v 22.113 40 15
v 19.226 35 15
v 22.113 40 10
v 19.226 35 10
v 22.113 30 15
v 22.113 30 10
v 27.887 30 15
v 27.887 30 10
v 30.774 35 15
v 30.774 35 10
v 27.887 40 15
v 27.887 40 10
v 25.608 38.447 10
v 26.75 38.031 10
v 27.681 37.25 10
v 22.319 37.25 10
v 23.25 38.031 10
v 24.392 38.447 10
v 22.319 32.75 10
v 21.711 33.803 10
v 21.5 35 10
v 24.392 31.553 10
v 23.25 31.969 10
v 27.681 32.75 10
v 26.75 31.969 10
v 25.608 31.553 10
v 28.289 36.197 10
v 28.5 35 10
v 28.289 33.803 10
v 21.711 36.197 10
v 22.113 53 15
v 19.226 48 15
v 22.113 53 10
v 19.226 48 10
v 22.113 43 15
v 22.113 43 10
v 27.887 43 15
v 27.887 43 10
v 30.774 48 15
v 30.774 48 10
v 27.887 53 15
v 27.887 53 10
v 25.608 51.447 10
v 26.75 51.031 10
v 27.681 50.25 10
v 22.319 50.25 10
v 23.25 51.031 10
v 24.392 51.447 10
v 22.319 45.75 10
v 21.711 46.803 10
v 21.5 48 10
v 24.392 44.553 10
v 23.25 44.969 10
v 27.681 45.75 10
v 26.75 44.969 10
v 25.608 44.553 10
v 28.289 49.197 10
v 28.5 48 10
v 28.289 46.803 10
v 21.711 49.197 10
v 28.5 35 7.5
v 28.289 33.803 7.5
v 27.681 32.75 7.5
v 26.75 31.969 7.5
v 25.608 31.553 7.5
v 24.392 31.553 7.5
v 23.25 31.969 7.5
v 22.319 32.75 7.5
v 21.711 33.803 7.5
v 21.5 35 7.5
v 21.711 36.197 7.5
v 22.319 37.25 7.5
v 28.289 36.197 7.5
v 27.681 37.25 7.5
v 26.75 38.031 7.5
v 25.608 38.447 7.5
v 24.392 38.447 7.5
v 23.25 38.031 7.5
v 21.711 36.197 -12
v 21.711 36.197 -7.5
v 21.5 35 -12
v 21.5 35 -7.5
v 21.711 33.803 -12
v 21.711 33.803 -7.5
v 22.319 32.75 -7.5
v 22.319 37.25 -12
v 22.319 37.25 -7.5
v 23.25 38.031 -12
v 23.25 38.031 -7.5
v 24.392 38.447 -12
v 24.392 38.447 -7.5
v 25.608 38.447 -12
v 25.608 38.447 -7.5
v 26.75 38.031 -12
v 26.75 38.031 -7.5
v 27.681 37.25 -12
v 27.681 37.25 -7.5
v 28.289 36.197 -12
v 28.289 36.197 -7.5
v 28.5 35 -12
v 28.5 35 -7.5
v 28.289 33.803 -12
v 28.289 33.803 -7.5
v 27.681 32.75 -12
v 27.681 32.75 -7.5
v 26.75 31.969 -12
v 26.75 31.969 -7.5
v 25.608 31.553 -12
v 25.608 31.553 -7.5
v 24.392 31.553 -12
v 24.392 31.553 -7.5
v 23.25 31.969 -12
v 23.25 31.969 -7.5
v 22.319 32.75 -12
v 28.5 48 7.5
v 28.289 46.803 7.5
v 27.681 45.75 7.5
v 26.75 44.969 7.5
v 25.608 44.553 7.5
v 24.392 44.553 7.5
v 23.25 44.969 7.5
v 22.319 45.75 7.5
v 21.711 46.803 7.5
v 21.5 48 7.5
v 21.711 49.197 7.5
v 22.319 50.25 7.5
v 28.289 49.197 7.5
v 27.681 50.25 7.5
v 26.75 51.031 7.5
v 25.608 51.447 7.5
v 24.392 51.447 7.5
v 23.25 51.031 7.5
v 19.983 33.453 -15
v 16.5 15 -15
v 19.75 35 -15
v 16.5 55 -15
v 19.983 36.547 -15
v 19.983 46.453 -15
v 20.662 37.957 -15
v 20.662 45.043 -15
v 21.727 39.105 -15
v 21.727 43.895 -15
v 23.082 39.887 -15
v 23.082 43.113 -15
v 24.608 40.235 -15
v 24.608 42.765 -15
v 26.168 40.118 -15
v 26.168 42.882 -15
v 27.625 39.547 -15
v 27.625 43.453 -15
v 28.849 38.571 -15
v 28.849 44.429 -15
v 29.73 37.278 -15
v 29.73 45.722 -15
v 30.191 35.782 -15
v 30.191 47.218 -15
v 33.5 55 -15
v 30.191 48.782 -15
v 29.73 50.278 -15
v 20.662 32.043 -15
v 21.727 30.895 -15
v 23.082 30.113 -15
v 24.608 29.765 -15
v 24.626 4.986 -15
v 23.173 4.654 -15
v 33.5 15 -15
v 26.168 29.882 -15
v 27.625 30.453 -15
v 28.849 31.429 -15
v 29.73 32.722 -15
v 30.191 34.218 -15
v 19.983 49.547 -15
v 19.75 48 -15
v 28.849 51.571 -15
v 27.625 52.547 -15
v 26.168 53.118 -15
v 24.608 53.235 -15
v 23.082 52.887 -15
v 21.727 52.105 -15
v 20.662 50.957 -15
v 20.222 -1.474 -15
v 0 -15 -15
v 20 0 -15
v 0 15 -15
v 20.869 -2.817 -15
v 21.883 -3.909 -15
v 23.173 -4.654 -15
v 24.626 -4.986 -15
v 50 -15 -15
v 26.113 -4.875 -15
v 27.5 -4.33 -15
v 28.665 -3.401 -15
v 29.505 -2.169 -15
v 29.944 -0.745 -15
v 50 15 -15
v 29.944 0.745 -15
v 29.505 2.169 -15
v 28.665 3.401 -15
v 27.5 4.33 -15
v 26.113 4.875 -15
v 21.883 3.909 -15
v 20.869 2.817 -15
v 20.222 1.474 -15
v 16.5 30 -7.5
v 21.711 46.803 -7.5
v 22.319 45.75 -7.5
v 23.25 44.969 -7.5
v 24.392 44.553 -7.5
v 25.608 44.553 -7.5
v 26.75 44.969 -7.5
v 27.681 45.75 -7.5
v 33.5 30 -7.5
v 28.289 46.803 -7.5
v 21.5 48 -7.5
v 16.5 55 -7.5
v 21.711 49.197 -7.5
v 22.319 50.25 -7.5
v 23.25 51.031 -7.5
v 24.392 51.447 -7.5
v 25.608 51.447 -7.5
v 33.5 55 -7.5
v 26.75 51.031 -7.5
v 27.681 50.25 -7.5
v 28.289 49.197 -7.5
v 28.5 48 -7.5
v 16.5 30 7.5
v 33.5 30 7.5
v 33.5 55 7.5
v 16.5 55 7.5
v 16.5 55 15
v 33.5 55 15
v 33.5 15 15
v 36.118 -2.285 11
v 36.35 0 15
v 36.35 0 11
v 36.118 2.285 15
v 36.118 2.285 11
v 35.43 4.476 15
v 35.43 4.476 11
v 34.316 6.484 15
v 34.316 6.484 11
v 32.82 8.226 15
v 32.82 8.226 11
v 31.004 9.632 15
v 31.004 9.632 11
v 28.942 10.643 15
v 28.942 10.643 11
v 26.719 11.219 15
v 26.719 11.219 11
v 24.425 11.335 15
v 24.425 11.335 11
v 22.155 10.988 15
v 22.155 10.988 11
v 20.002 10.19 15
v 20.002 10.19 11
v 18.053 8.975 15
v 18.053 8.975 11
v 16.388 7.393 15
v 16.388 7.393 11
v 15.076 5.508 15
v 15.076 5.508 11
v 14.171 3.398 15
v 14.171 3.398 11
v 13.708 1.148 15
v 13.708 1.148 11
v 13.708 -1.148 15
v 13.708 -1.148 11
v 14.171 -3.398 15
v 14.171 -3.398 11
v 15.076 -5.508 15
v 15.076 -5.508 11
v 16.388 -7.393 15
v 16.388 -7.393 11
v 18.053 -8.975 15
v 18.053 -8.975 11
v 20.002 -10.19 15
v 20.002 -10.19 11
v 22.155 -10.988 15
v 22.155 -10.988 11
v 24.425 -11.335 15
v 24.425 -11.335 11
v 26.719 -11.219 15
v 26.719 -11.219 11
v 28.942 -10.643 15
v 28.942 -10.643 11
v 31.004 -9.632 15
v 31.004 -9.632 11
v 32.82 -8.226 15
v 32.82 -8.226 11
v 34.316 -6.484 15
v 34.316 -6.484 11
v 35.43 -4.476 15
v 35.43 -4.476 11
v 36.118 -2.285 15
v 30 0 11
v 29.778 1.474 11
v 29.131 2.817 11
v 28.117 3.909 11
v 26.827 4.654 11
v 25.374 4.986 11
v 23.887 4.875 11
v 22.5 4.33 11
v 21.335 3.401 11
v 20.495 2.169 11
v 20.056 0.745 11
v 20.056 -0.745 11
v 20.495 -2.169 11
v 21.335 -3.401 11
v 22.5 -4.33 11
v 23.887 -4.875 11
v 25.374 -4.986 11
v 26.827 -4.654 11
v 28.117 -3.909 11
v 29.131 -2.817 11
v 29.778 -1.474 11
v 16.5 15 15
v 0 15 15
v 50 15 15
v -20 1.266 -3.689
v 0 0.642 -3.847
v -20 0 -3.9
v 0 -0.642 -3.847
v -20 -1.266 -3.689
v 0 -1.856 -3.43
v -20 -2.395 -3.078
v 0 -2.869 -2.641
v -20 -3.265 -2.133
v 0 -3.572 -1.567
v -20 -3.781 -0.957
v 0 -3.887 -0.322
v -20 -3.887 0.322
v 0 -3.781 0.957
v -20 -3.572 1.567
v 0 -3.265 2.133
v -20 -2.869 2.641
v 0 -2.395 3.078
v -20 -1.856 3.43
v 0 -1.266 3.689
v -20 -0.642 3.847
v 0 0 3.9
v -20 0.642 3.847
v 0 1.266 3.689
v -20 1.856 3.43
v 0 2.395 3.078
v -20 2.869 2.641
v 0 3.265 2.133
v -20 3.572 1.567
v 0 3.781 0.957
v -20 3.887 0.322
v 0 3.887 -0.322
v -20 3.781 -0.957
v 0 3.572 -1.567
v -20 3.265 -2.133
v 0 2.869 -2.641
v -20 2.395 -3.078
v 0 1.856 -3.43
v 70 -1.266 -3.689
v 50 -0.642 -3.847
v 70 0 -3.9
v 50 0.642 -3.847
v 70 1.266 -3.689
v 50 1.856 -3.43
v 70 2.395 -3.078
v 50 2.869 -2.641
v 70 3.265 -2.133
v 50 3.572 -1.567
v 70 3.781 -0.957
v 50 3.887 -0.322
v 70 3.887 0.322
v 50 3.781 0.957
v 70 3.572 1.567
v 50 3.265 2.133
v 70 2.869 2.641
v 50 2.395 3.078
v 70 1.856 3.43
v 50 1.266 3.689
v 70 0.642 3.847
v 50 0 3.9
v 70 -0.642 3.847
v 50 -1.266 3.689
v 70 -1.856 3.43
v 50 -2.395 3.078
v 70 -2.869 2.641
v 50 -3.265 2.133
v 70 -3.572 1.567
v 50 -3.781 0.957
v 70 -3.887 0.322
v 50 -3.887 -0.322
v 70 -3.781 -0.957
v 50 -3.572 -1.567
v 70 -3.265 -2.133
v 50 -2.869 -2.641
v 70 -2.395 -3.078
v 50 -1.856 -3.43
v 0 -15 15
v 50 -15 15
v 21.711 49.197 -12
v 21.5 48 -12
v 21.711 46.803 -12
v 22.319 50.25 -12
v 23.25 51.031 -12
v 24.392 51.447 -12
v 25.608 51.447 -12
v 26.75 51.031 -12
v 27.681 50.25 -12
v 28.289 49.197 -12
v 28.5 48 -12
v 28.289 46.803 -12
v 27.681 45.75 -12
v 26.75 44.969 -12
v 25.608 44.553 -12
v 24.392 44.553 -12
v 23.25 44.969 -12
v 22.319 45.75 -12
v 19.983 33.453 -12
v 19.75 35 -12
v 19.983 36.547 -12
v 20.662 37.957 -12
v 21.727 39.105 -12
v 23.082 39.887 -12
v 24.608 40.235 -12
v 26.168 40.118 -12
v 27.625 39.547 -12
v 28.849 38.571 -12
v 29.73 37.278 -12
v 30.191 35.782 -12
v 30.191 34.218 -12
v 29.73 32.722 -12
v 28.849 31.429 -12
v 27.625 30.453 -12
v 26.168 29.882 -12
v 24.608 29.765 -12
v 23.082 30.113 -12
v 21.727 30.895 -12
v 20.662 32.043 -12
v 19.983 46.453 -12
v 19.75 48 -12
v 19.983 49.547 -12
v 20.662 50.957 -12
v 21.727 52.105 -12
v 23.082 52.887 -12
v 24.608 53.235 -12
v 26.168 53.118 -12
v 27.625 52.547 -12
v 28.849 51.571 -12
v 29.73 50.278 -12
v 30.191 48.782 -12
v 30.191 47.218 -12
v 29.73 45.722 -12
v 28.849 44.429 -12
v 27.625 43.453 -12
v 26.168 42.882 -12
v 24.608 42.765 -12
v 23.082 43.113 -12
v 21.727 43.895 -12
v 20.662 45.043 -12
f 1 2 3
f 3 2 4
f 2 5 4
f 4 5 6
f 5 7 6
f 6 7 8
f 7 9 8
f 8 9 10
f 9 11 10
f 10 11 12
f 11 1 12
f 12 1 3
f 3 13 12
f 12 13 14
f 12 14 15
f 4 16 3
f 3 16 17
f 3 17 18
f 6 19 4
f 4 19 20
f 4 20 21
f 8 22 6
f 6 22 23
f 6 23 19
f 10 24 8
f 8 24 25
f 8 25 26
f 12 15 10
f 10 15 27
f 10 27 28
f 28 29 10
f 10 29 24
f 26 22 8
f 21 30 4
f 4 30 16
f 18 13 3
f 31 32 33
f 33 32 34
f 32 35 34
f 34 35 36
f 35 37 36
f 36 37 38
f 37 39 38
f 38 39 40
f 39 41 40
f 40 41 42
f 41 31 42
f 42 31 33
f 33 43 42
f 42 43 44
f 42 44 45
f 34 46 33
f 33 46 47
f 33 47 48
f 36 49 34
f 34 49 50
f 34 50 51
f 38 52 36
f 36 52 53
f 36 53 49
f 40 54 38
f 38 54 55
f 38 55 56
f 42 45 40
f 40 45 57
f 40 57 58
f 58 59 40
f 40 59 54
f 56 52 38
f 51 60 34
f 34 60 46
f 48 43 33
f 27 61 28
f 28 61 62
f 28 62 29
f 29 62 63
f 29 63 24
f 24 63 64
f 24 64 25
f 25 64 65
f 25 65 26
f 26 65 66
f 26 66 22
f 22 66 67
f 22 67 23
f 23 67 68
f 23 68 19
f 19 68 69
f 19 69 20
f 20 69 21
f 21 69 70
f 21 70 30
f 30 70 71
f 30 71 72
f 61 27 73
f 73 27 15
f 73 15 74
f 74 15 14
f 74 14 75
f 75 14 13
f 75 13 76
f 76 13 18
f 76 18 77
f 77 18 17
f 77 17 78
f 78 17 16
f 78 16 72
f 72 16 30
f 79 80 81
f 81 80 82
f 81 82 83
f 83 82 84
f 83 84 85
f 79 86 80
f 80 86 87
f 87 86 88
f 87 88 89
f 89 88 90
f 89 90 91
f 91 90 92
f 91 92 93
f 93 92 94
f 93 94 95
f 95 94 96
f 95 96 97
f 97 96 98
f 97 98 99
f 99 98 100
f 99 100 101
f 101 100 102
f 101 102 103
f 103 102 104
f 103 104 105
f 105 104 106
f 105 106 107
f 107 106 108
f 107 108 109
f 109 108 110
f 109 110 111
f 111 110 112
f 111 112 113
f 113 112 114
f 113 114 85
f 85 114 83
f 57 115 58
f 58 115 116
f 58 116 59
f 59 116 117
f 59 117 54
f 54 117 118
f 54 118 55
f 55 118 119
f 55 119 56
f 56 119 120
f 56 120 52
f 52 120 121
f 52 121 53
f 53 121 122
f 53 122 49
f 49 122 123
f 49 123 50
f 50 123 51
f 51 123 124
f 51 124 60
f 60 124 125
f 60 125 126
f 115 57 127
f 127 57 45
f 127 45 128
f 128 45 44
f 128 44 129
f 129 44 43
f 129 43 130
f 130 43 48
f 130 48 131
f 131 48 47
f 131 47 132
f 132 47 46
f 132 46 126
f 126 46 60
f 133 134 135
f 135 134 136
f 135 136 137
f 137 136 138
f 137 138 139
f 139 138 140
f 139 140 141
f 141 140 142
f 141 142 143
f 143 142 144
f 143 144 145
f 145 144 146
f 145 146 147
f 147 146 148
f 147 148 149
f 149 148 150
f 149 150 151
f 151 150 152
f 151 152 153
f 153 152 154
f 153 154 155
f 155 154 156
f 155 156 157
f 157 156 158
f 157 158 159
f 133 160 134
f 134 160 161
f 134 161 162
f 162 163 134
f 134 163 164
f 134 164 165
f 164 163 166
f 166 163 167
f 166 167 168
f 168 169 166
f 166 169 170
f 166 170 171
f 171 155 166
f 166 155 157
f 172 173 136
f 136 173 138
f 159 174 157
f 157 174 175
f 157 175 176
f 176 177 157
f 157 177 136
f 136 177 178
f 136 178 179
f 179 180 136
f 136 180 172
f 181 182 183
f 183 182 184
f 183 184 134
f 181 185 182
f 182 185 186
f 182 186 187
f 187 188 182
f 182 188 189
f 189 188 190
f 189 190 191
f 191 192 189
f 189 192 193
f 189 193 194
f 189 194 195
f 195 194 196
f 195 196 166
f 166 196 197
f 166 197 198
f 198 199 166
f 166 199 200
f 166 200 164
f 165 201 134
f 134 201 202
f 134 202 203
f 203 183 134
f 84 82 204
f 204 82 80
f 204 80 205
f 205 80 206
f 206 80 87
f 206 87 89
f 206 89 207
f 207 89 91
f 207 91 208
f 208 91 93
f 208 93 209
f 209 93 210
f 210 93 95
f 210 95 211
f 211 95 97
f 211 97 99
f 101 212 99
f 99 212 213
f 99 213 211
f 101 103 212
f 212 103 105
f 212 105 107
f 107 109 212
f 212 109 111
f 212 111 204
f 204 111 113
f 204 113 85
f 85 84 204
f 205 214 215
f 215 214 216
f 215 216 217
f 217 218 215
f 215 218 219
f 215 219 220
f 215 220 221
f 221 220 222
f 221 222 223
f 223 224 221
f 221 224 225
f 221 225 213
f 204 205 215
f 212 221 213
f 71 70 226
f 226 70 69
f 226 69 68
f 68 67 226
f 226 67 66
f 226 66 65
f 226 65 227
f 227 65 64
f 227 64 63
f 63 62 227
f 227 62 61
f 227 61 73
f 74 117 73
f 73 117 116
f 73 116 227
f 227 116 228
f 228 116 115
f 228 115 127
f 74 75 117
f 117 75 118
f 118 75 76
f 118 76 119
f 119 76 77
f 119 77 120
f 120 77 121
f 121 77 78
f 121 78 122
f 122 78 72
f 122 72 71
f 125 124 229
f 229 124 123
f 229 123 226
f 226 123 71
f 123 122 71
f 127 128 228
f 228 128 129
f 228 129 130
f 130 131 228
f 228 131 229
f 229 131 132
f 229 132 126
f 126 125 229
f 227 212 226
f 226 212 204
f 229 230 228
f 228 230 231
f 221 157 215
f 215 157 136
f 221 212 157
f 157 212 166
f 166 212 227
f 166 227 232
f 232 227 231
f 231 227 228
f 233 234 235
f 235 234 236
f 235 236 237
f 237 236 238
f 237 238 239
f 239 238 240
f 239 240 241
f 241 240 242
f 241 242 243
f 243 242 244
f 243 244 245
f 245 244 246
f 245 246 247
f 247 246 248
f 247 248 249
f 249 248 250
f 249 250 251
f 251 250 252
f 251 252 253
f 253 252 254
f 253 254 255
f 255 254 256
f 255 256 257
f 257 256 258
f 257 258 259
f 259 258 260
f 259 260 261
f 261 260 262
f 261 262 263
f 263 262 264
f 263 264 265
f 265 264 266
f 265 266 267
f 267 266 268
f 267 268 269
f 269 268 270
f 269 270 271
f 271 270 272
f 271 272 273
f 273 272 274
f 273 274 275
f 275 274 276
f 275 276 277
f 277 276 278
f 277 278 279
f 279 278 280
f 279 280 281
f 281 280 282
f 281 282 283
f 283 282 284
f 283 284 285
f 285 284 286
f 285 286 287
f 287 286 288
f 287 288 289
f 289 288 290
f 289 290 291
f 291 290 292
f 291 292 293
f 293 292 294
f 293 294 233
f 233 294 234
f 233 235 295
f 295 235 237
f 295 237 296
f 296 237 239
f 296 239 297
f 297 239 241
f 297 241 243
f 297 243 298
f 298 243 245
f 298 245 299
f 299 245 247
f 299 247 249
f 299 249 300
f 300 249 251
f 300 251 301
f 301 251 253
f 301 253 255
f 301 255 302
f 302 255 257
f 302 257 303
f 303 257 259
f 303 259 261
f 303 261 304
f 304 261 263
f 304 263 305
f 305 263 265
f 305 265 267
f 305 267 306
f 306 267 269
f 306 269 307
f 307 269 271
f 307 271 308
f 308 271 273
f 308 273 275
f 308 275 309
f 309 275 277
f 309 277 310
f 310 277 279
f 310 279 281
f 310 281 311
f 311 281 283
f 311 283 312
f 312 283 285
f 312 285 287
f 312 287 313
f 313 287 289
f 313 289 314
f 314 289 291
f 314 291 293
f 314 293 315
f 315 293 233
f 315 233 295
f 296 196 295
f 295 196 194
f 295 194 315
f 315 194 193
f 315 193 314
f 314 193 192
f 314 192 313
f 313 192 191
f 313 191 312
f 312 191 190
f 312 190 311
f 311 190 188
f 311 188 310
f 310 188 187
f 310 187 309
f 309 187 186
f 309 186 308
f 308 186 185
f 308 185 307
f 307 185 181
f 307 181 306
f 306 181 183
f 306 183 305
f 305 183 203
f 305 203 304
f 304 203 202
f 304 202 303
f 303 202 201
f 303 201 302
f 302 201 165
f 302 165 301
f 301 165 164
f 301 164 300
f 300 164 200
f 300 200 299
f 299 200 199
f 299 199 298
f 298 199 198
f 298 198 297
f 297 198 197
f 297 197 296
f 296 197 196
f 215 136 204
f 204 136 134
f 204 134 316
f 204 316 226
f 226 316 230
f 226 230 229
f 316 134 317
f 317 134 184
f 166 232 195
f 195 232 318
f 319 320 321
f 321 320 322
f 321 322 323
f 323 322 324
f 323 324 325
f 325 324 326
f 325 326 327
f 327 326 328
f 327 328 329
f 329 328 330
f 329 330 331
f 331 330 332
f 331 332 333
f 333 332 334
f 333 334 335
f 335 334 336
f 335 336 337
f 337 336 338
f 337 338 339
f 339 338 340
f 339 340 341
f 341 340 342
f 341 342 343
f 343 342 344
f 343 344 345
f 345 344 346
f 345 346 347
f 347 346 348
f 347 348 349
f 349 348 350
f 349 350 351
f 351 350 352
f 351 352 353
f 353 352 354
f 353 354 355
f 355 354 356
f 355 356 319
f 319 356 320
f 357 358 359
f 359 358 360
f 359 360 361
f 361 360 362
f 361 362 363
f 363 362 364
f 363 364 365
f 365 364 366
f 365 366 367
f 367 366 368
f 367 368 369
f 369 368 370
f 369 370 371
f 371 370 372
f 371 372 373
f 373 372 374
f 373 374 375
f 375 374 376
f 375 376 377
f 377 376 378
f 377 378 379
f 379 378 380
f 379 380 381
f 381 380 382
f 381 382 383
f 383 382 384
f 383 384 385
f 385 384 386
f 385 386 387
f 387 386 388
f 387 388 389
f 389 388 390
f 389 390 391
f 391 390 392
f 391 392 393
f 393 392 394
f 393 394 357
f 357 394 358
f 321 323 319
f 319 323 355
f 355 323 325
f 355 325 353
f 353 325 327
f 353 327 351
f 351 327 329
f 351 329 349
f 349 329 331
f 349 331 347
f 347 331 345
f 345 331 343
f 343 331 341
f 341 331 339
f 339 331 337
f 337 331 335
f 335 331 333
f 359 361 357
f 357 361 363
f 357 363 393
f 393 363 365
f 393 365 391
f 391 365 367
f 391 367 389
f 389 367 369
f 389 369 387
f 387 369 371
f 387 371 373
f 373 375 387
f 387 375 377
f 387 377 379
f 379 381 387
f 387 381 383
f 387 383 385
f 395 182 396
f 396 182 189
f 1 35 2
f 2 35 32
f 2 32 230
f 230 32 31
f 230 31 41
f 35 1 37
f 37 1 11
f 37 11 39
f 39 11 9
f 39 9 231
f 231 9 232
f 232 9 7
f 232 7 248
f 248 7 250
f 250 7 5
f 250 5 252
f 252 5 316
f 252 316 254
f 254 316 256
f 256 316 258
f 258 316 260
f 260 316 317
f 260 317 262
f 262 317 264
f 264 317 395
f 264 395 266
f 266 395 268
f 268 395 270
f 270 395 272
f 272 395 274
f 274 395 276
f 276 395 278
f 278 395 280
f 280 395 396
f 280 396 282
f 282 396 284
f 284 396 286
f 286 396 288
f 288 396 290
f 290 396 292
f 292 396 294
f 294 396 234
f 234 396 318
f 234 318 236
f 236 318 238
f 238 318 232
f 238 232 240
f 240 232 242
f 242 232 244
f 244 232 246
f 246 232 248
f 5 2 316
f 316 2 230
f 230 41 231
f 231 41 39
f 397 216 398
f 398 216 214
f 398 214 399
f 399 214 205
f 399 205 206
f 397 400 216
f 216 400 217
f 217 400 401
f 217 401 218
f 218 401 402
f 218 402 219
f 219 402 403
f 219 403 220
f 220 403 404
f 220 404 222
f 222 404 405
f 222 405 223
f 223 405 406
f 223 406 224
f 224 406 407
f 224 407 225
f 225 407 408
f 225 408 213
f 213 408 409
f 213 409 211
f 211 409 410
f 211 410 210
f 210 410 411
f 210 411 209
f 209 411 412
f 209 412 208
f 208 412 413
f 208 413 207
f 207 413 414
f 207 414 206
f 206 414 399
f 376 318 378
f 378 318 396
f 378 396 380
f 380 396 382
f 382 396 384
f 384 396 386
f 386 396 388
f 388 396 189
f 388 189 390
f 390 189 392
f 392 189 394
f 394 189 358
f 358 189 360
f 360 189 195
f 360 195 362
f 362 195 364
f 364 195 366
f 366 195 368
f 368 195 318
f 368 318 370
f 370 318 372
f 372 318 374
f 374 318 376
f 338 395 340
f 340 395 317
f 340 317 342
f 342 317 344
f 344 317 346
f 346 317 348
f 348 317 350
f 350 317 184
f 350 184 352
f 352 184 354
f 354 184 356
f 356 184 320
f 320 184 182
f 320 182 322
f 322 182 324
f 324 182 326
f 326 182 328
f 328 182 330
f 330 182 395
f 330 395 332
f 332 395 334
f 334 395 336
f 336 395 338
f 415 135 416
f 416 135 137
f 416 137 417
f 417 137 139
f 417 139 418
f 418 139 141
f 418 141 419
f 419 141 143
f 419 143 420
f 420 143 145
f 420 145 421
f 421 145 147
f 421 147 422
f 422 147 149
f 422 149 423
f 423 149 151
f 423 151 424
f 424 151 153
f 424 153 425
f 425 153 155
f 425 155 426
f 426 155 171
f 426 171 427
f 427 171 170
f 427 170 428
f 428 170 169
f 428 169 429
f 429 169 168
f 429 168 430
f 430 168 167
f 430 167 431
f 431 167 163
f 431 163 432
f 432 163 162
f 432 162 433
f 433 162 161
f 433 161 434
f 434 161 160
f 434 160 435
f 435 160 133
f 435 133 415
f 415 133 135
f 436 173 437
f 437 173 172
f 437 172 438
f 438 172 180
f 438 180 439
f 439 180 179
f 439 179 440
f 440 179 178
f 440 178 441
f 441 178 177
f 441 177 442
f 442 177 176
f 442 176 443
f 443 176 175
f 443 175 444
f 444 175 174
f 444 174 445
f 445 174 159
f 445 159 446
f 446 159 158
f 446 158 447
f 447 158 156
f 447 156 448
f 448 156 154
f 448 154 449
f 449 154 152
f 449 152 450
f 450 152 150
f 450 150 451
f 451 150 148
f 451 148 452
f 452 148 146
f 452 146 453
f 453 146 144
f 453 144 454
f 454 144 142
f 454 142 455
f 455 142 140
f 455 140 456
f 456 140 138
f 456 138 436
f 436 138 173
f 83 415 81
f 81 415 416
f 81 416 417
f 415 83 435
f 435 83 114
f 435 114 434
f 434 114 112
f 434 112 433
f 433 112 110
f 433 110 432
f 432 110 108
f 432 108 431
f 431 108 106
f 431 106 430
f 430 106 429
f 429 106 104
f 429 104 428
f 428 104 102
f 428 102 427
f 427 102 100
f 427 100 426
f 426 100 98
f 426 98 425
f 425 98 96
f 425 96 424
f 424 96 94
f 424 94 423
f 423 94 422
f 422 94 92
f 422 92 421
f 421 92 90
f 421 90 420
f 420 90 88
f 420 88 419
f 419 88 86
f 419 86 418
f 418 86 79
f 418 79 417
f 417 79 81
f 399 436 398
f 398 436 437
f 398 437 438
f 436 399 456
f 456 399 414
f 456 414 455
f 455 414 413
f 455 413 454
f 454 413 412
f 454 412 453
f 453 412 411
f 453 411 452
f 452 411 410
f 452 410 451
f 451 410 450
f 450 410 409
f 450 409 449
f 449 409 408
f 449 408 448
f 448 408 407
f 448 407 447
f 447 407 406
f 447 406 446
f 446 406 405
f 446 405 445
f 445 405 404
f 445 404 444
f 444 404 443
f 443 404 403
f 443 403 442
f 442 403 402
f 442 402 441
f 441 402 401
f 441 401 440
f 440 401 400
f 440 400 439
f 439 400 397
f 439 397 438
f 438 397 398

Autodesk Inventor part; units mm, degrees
ref_plane "YZ Plane" through (0, 0, 0) normal (1, 0, 0) x (0, 1, 0)
ref_plane "XZ Plane" through (0, 0, 0) normal (0, 1, 0) x (-1, 0, 0)
ref_plane "XY Plane" through (0, 0, 0) normal (0, 0, 1) x (1, 0, 0)
sketch "Sketch1" plane through (0, 0, 0) normal (1, 0, 0) x (0, 1, 0)
  line L0 (-15, 15) -> (15, 15)
  line L1 (15, 15) -> (15, -15)
  line L2 (15, -15) -> (-15, -15)
  line L3 (-15, -15) -> (-15, 15)
  line L4 (-15, 15) -> (15, -15) construction
  line L5 (15, 15) -> (-15, -15) construction
  point P0 (0, 0)
  dimension "d0" = 30
  dimension "d1" = 30
extrude "Extrusion1" add sketch "Sketch1" along normal blind 50
sketch "Sketch2" plane through (50, 0, 0) normal (1, 0, 0) x (0, 0, -1)
  circle A0 centre (0, 0) radius 3.9
  dimension "d5" = 7.8
extrude "Extrusion2" add sketch "Sketch2" along normal blind 20 and the other way blind 70
sketch "Sketch3" plane through (0, 15, 15) normal (0, 1, 0) x (1, 0, 0)
  line L0 (16.5, 30) -> (33.5, 30)
  line L1 (33.5, 30) -> (33.5, 0)
  line L2 (33.5, 0) -> (16.5, 0)
  line L3 (16.5, 0) -> (16.5, 30)
  line L4 (16.5, 30) -> (33.5, 0) construction
  line L5 (33.5, 30) -> (16.5, 0) construction
  point P0 (0, 15)
  point P1 (25, 15)
  dimension "d10" = 17
  dimension "d11" = 30
extrude "Extrusion3" add sketch "Sketch3" along normal blind 40
sketch "Sketch4" plane through (0, -15, -15) normal (0, -1, 0) x (1, 0, 0)
  point P0 (0, 15)
sketch "Sketch5" plane through (0, -15, 15) normal (0, 0, 1) x (1, 0, 0)
  line L0 (0, 15) -> (50, 15)
  line L1 (50, 30) -> (50, 0) projected
  circle A0 centre (25, 15) radius 5
  dimension "d14" = 10
extrude "Extrusion4" cut sketch "Sketch5" against normal through all
sketch "Sketch6" plane through (0, -15, -15) normal (0, 0, -1) x (-1, 0, 0)
  point P0 (0, 15)
sketch "Sketch7" plane through (0, -15, 15) normal (0, 0, 1) x (1, 0, 0)
  circle A0 centre (25, 15) radius 5 projected
  circle A1 centre (25, 15) radius 11.35
  point P0 (0, 15)
  dimension "d17" = 22.7
extrude "Extrusion5" cut sketch "Sketch7" against normal blind 4
sketch "Sketch8" plane through (0, 55, 15) normal (0, 1, 0) x (1, 0, 0)
  line L0 (16.5, 0) -> (16.5, 30) projected
  line L1 (16.5, 0) -> (33.5, 0) projected
  line L2 (16.5, 30) -> (33.5, 0)
  line L3 (33.5, 30) -> (33.5, 0) projected
  line L4 (16.5, 22.5) -> (33.5, 22.5)
  line L5 (33.5, 22.5) -> (33.5, 7.5)
  line L6 (33.5, 7.5) -> (16.5, 7.5)
  line L7 (16.5, 7.5) -> (16.5, 22.5)
  line L8 (16.5, 22.5) -> (33.5, 7.5) construction
  line L9 (33.5, 22.5) -> (16.5, 7.5) construction
  point P0 (0, 15)
  point P1 (25, 15)
  dimension "d20" = 15
extrude "Extrusion6" cut sketch "Sketch8" against normal blind 25 contours L0 L4 L2 L6 | L2 L4 L3 L6
sketch "Sketch9" plane through (16.5, 55, -7.5) normal (0, 0, 1) x (1, 0, 0)
  line L0 (17, 0) -> (0, 0) projected
  line L1 (8.5, 0) -> (8.5, -25)
  line L2 (8.5, 0) -> (8.5, -7)
  line L3 (8.5, -7) -> (8.5, -25)
  line L4 (8.5, -25) -> (8.5, -20)
  circle A0 centre (8.5, -7) radius 3.5
  circle A1 centre (8.5, -20) radius 3.5
  point P0 (-16.5, -55)
  dimension "d23" = 25
  dimension "d24" = 7
  dimension "d25" = 5
  dimension "d26" = 7
  dimension "d27" = 7
extrude "Extrusion7" cut sketch "Sketch9" along normal mid plane 100
sketch "Sketch10" plane through (0, -15, 15) normal (0, 0, 1) x (1, 0, 0)
  circle A0 centre (25, 63) radius 3.5 projected
  line L0 (30.7735, 63) -> (27.8868, 58)
  line L1 (27.8868, 58) -> (22.1132, 58)
  line L2 (22.1132, 58) -> (19.2265, 63)
  line L3 (19.2265, 63) -> (22.1132, 68)
  line L4 (22.1132, 68) -> (27.8868, 68)
  line L5 (27.8868, 68) -> (30.7735, 63)
  circle A1 centre (25, 50) radius 3.5 projected
  line L6 (30.7735, 50) -> (27.8868, 45)
  line L7 (27.8868, 45) -> (22.1132, 45)
  line L8 (22.1132, 45) -> (19.2265, 50)
  line L9 (19.2265, 50) -> (22.1132, 55)
  line L10 (22.1132, 55) -> (27.8868, 55)
  line L11 (27.8868, 55) -> (30.7735, 50)
  point P0 (0, 15)
  dimension "d30" = 10
  dimension "d31" = 10
extrude "Extrusion8" cut sketch "Sketch10" against normal blind 5
sketch "Sketch11" plane through (0, -15, -15) normal (0, 0, -1) x (-1, 0, 0)
  circle A0 centre (-25, 63) radius 3.5 projected
  circle A1 centre (-25, 63) radius 5.25
  circle A2 centre (-25, 50) radius 3.5 projected
  circle A3 centre (-25, 50) radius 5.25
  point P0 (0, 15)
  dimension "d34" = 10.5
  dimension "d35" = 10.5
extrude "Extrusion9" cut sketch "Sketch11" against normal blind 3 contours A0 | A1 | A2 | A3
properties part number "L0wer_battery"
